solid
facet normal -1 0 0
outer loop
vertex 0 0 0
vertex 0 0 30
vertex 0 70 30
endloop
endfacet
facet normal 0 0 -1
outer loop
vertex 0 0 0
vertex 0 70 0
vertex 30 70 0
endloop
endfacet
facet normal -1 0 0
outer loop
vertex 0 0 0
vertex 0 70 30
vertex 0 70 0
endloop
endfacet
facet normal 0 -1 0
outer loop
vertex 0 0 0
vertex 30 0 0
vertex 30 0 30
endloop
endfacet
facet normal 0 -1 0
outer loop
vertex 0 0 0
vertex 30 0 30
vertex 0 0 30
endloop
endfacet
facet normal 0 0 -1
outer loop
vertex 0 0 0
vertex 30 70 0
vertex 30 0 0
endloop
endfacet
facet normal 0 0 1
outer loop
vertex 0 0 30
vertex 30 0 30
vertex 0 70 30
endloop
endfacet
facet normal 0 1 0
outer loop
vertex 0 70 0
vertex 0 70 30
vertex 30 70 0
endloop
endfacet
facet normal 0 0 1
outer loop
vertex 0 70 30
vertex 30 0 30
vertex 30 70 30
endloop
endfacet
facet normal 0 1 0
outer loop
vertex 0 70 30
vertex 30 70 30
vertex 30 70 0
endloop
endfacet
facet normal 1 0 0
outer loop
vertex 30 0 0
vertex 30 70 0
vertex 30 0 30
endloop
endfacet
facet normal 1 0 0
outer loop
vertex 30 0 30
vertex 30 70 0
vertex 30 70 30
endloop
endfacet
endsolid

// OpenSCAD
// organizer-v12 / div2
// 3D AI Designer V1.1 Geometry Engine uretimi - tum olculer mm.

// ============ PARAMETERS ============
width = 30;
depth = 70;
height = 30;
$fn = 96;  // dairesel yuzey cozunurlugu (bbox dogrulugu icin)

// ============ GEOMETRY + BOOLEAN OPERATIONS ============
cube([30, 70, 30]);

// ============ ASSEMBLY / NOTLAR ============
// NOT: assembly metadata: validation disi (simulasyon yok)

// ============ EXPORT ============
// Export harici arac ile yapilir (Export-Stl.ps1).
